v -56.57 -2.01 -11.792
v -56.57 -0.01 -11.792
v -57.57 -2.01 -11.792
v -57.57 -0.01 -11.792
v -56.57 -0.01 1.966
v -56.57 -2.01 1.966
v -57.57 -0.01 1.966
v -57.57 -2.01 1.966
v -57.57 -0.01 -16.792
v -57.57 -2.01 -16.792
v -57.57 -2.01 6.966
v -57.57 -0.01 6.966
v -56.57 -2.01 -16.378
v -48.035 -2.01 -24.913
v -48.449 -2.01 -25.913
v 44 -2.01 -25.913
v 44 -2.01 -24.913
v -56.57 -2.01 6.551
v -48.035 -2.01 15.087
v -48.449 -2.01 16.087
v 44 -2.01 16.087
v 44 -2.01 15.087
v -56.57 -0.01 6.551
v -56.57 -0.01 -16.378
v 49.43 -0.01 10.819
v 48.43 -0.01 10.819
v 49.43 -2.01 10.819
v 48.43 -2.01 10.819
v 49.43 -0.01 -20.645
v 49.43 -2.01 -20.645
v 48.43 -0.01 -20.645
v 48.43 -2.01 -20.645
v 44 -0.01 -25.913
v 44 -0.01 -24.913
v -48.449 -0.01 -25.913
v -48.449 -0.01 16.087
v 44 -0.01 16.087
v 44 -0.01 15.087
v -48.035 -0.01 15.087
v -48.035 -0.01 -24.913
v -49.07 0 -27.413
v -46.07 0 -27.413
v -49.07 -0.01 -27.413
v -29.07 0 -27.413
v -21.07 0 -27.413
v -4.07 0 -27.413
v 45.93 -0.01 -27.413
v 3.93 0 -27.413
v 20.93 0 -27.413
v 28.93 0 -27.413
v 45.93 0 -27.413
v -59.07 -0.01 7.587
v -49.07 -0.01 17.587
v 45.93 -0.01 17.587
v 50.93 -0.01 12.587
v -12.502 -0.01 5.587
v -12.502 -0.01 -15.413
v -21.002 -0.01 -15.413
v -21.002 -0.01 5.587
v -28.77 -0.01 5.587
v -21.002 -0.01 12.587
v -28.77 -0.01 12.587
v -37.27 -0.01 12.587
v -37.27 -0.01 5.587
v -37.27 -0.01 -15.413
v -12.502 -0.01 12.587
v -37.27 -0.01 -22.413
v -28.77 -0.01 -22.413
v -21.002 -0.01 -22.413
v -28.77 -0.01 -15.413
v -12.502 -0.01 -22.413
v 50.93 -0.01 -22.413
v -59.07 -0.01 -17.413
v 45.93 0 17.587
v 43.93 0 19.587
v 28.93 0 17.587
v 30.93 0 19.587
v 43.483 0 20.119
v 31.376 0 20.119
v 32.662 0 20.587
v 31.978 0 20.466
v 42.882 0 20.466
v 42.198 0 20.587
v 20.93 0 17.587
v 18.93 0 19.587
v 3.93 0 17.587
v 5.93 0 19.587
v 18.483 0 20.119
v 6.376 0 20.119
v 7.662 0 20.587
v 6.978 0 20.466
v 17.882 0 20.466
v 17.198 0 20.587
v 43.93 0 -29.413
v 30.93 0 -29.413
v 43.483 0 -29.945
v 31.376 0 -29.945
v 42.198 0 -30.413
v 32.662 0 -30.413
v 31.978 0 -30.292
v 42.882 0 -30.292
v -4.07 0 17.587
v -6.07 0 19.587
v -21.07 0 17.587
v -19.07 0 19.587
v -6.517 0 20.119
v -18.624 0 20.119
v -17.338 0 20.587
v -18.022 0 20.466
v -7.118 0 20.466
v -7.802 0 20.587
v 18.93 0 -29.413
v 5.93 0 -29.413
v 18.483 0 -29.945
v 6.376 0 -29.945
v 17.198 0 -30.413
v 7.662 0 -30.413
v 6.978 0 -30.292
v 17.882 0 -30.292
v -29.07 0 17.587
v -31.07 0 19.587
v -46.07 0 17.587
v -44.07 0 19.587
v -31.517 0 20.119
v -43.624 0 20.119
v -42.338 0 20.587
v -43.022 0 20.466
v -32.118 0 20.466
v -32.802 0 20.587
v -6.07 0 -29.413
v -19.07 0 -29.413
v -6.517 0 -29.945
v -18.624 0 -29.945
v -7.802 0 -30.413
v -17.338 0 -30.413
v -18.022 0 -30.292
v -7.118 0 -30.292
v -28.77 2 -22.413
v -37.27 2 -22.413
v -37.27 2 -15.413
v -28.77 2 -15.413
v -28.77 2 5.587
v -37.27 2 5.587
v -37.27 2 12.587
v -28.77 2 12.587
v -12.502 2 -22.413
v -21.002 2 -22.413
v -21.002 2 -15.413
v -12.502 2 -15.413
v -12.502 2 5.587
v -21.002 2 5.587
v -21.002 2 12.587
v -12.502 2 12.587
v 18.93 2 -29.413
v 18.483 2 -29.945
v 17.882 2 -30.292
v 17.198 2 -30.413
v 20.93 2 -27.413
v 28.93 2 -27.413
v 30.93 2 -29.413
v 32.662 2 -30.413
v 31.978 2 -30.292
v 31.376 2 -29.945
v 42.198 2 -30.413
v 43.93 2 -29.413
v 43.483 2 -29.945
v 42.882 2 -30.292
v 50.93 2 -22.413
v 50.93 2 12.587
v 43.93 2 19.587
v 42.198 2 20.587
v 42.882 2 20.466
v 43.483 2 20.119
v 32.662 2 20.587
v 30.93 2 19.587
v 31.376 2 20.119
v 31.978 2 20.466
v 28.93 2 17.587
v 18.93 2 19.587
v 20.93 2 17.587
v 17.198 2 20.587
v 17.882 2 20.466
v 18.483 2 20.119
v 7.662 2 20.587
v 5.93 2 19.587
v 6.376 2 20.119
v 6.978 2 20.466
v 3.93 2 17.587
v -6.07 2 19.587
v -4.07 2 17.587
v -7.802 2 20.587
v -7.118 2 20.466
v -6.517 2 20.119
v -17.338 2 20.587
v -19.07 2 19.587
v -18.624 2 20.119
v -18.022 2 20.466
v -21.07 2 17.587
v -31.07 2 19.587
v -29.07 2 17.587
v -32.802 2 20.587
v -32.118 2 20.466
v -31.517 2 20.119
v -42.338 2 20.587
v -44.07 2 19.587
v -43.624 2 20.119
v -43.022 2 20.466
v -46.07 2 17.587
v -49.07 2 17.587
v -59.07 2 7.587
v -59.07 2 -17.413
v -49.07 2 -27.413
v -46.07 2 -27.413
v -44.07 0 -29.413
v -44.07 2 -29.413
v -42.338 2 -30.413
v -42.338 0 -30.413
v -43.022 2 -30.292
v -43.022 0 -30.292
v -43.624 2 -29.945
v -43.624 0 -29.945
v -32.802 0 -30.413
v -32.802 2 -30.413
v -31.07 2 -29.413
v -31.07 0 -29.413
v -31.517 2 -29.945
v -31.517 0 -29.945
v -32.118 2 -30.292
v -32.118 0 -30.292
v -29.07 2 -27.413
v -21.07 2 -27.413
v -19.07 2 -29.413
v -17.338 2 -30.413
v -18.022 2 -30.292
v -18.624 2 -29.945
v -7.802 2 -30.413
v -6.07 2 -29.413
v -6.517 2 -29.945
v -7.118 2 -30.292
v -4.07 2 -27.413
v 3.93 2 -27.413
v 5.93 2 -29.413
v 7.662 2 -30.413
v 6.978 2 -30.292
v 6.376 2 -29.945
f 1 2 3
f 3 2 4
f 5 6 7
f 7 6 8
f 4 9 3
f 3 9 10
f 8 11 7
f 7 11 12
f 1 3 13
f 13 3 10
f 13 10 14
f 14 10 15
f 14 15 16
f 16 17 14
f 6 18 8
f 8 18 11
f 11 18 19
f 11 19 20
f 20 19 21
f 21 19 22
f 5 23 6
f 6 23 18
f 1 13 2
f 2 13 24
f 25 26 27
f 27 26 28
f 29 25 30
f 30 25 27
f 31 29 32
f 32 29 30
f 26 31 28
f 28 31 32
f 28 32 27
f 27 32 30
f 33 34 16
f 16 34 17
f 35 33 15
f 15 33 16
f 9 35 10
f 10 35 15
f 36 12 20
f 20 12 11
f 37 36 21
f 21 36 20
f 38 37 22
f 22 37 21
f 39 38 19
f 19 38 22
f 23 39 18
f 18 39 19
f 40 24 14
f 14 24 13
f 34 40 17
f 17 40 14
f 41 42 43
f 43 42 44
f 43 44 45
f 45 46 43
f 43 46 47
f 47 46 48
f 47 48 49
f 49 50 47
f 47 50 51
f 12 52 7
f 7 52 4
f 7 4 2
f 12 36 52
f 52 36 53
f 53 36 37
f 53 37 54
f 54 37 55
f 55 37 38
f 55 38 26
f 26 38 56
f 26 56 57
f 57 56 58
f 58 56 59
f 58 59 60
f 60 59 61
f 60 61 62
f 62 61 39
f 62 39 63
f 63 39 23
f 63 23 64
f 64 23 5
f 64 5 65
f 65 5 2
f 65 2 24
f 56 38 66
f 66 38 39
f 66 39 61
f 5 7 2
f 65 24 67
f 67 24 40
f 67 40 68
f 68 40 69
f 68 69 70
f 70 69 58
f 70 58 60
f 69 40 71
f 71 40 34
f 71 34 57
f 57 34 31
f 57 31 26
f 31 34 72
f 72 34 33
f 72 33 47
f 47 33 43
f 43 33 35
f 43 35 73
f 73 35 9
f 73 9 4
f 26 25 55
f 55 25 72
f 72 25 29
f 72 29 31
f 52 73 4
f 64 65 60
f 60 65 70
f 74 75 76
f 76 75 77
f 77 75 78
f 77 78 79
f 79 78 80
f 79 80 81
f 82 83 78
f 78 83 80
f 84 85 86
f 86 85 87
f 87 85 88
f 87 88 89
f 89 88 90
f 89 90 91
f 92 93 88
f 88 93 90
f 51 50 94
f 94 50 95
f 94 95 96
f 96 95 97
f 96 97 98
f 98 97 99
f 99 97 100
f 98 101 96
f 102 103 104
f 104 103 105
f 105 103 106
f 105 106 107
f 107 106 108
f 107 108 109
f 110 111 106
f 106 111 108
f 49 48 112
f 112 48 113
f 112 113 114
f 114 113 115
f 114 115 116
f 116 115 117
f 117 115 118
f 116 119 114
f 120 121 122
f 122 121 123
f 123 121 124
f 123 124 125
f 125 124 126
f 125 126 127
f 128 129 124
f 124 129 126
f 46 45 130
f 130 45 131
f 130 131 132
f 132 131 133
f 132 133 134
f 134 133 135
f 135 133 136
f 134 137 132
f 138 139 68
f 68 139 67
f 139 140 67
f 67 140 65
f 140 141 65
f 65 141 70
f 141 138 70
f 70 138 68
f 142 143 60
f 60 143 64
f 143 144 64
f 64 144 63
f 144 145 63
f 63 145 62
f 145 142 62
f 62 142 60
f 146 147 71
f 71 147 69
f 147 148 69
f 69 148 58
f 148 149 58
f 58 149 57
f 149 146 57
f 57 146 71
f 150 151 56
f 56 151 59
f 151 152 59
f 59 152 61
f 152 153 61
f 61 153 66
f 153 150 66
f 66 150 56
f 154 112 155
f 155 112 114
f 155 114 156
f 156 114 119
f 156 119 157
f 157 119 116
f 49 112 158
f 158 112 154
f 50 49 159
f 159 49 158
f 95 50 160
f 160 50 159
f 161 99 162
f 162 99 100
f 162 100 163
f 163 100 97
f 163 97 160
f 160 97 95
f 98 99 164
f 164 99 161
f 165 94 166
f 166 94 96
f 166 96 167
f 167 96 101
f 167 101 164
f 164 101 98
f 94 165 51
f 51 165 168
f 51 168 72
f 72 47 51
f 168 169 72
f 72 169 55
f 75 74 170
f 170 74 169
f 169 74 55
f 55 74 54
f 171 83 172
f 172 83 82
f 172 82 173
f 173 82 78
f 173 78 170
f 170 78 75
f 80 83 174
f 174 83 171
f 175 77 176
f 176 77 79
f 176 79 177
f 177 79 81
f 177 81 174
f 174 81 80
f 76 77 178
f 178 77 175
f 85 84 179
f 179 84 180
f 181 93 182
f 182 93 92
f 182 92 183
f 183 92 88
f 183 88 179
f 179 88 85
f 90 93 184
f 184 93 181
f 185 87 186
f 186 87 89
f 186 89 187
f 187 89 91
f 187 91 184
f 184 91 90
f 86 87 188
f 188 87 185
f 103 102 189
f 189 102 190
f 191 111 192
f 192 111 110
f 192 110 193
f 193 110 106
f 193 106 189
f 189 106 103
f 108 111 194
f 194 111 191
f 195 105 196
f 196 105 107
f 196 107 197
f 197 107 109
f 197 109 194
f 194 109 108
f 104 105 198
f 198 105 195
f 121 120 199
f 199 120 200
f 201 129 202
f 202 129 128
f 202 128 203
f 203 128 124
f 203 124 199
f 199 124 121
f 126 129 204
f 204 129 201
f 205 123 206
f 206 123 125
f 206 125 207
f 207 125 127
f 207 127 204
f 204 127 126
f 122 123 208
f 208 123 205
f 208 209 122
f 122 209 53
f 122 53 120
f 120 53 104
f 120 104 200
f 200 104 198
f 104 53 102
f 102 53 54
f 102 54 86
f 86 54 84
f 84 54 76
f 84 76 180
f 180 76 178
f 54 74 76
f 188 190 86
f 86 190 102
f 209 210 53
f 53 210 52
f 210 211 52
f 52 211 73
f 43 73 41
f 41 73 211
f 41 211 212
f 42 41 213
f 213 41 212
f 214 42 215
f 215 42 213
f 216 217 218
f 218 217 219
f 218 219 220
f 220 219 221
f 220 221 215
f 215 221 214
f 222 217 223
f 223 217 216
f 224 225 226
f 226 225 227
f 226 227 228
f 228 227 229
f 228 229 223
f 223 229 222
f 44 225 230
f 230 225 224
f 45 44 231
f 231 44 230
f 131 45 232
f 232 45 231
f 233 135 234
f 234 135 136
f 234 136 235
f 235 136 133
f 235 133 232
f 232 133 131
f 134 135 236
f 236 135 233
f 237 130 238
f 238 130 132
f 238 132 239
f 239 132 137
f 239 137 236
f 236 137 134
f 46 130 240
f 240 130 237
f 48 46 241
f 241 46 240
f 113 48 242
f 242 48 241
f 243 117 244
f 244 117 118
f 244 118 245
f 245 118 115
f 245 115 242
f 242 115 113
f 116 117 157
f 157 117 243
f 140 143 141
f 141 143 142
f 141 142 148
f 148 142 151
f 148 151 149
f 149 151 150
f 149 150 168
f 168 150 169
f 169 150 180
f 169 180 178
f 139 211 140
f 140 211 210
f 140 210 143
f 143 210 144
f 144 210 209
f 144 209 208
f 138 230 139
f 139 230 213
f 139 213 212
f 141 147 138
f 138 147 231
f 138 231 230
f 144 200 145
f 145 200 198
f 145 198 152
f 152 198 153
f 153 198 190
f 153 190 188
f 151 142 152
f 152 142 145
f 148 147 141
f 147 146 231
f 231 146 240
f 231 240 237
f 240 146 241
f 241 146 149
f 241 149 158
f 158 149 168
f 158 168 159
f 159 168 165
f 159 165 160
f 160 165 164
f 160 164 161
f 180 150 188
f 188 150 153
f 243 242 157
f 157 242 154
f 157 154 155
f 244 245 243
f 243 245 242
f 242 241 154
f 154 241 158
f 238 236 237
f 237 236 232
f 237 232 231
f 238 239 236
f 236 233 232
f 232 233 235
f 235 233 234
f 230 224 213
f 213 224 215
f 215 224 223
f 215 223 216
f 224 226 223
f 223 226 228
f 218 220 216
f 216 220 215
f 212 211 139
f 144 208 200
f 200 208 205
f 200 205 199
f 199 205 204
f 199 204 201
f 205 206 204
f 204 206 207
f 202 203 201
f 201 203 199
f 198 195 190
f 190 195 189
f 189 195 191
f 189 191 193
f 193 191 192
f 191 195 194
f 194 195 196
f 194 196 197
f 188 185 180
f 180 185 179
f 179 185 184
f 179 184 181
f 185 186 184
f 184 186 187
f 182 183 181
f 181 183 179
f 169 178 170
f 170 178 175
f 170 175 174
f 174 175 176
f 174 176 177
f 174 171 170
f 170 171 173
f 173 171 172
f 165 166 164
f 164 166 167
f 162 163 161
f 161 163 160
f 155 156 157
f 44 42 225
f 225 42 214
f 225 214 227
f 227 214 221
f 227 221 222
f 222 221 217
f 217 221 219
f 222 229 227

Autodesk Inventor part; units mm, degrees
ref_plane "YZ Plane" through (0, 0, 0) normal (1, 0, 0) x (0, 1, 0)
ref_plane "XZ Plane" through (0, 0, 0) normal (0, 1, 0) x (-1, 0, 0)
ref_plane "XY Plane" through (0, 0, 0) normal (0, 0, 1) x (1, 0, 0)
sketch "Sketch1" plane through (0, 0, 0) normal (0, 1, 0) x (-1, 0, 0)
  arc A0 (-42.1977, 20.587) -> (-43.9298, 19.587) centre (-42.1977, 18.587) ccw
  line L0 (-45.9298, 17.587) -> (-43.9298, 19.587)
  line L1 (-50.9298, 12.587) -> (-45.9298, 17.587)
  line L2 (-50.9298, -22.413) -> (-50.9298, 12.587)
  line L3 (-43.9298, -29.413) -> (-50.9298, -22.413)
  arc A1 (-43.9298, -29.413) -> (-42.1977, -30.413) centre (-42.1977, -28.413) ccw
  line L4 (-32.6618, -30.413) -> (-42.1977, -30.413)
  arc A2 (-32.6618, -30.413) -> (-30.9298, -29.413) centre (-32.6618, -28.413) ccw
  line L5 (-28.9298, -27.413) -> (-30.9298, -29.413)
  line L6 (-20.9298, -27.413) -> (-28.9298, -27.413)
  line L7 (-18.9298, -29.413) -> (-20.9298, -27.413)
  arc A3 (-18.9298, -29.413) -> (-17.1977, -30.413) centre (-17.1977, -28.413) ccw
  line L8 (-7.6618, -30.413) -> (-17.1977, -30.413)
  arc A4 (-7.6618, -30.413) -> (-5.9298, -29.413) centre (-7.6618, -28.413) ccw
  line L9 (-3.9298, -27.413) -> (-5.9298, -29.413)
  line L10 (4.0702, -27.413) -> (-3.9298, -27.413)
  line L11 (6.0702, -29.413) -> (4.0702, -27.413)
  arc A5 (6.0702, -29.413) -> (7.8023, -30.413) centre (7.8023, -28.413) ccw
  line L12 (17.3382, -30.413) -> (7.8023, -30.413)
  arc A6 (17.3382, -30.413) -> (19.0702, -29.413) centre (17.3382, -28.413) ccw
  line L13 (21.0702, -27.413) -> (19.0702, -29.413)
  line L14 (29.0702, -27.413) -> (21.0702, -27.413)
  line L15 (31.0702, -29.413) -> (29.0702, -27.413)
  arc A7 (31.0702, -29.413) -> (32.8023, -30.413) centre (32.8023, -28.413) ccw
  line L16 (42.3382, -30.413) -> (32.8023, -30.413)
  arc A8 (42.3382, -30.413) -> (44.0702, -29.413) centre (42.3382, -28.413) ccw
  line L17 (46.0702, -27.413) -> (44.0702, -29.413)
  line L18 (49.0702, -27.413) -> (46.0702, -27.413)
  line L19 (59.0702, -17.413) -> (49.0702, -27.413)
  line L20 (59.0702, 7.587) -> (59.0702, -17.413)
  line L21 (49.0702, 17.587) -> (59.0702, 7.587)
  line L22 (46.0702, 17.587) -> (49.0702, 17.587)
  line L23 (44.0702, 19.587) -> (46.0702, 17.587)
  arc A9 (44.0702, 19.587) -> (42.3382, 20.587) centre (42.3382, 18.587) ccw
  line L24 (32.8023, 20.587) -> (42.3382, 20.587)
  arc A10 (32.8023, 20.587) -> (31.0702, 19.587) centre (32.8023, 18.587) ccw
  line L25 (29.0702, 17.587) -> (31.0702, 19.587)
  line L26 (21.0702, 17.587) -> (29.0702, 17.587)
  line L27 (19.0702, 19.587) -> (21.0702, 17.587)
  arc A11 (19.0702, 19.587) -> (17.3382, 20.587) centre (17.3382, 18.587) ccw
  line L28 (7.8023, 20.587) -> (17.3382, 20.587)
  arc A12 (7.8023, 20.587) -> (6.0702, 19.587) centre (7.8023, 18.587) ccw
  line L29 (4.0702, 17.587) -> (6.0702, 19.587)
  line L30 (-3.9298, 17.587) -> (4.0702, 17.587)
  line L31 (-5.9298, 19.587) -> (-3.9298, 17.587)
  arc A13 (-5.9298, 19.587) -> (-7.6618, 20.587) centre (-7.6618, 18.587) ccw
  line L32 (-17.1977, 20.587) -> (-7.6618, 20.587)
  arc A14 (-17.1977, 20.587) -> (-18.9298, 19.587) centre (-17.1977, 18.587) ccw
  line L33 (-20.9298, 17.587) -> (-18.9298, 19.587)
  line L34 (-28.9298, 17.587) -> (-20.9298, 17.587)
  line L35 (-30.9298, 19.587) -> (-28.9298, 17.587)
  arc A15 (-30.9298, 19.587) -> (-32.6618, 20.587) centre (-32.6618, 18.587) ccw
  line L36 (-42.1977, 20.587) -> (-32.6618, 20.587)
  point P0 (0, 0)
  point P1 (59.0702, 17.587)
extrude "Extrusion1" add sketch "Sketch1" along normal blind 2
sketch "Sketch2" plane through (0, 2, 0) normal (0, 1, 0) x (1, 0, 0)
  line L0 (-21.0702, 27.413) -> (-29.0702, 27.413) projected
  line L1 (-28.7702, 22.413) -> (-28.7702, 15.413)
  line L2 (-21.0023, 22.413) -> (-21.0023, 15.413)
  line L3 (-28.7702, -5.587) -> (-28.7702, -12.587)
  line L4 (-21.0023, -5.587) -> (-21.0023, -12.587)
  line L5 (-37.2702, -5.587) -> (-28.7702, -5.587)
  line L6 (-21.0023, -5.587) -> (-12.5023, -5.587)
  line L7 (-12.5023, 15.413) -> (-21.0023, 15.413)
  line L8 (-28.7702, 15.413) -> (-37.2702, 15.413)
  line L9 (-37.2702, 22.413) -> (-28.7702, 22.413)
  line L10 (-21.0023, 22.413) -> (-12.5023, 22.413)
  line L11 (-12.5023, -12.587) -> (-21.0023, -12.587)
  line L12 (-28.7702, -12.587) -> (-37.2702, -12.587)
  line L13 (-37.2702, -12.587) -> (-37.2702, -5.587)
  line L14 (-37.2702, 15.413) -> (-37.2702, 22.413)
  line L15 (-12.5023, 22.413) -> (-12.5023, 15.413)
  line L16 (-12.5023, -5.587) -> (-12.5023, -12.587)
  line L17 (-29.0702, -17.587) -> (-21.0702, -17.587) projected
  line L18 (-49.0702, -17.587) -> (-46.0702, -17.587) projected
  arc A0 (42.1977, -20.587) -> (43.9298, -19.587) centre (42.1977, -18.587) ccw projected
  point P0 (0, 0)
  point P1 (-47.5702, -17.587)
  point P2 (43.1977, -20.319)
  dimension "d15" = 8.5
  dimension "d16" = 8.5
  dimension "d19" = 10.3
  dimension "d22" = 55.7
  dimension "d23" = 5
  dimension "d24" = 5
  dimension "d25" = 5
  dimension "d26" = 5
  dimension "d27" = 7
extrude "Extrusion4" cut sketch "Sketch2" against normal blind 10
sketch "Sketch4" plane through (0, 0, 0) normal (0, -1, 0) x (1, 0, 0)
  line L0 (-49.0702, 17.587) -> (-46.0702, 17.587) projected
  line L1 (28.9298, 17.587) -> (30.9298, 19.587) projected
  line L2 (-46.0702, 17.587) -> (45.9298, 17.587)
  line L3 (43.9298, 19.587) -> (50.9298, 12.587) projected
  line L4 (-44.0702, -29.413) -> (-46.0702, -27.413) projected
  line L5 (-46.0702, -27.413) -> (45.9298, -27.413)
  line L6 (50.9298, -22.413) -> (43.9298, -29.413) projected
  line L7 (-46.0702, 17.587) -> (-49.0702, 17.587)
  line L8 (-59.0702, 7.587) -> (-49.0702, 17.587) projected
  line L9 (-49.0702, 17.587) -> (-59.0702, 7.587)
  line L10 (-59.0702, -17.413) -> (-59.0702, 7.587) projected
  line L11 (-59.0702, 7.587) -> (-59.0702, -17.413)
  line L12 (-59.0702, -17.413) -> (-49.0702, -27.413)
  line L13 (-49.0702, -27.413) -> (-46.0702, -27.413)
  line L14 (45.9298, 17.587) -> (50.9298, 12.587)
  line L15 (50.9298, 12.587) -> (50.9298, -22.413) projected
  line L16 (50.9298, -22.413) -> (45.9298, -27.413)
  line L17 (50.9298, 12.587) -> (50.9298, -22.413)
  line L18 (-37.2702, -15.413) -> (-28.7702, -15.413) projected
  line L19 (-28.7702, -15.413) -> (-28.7702, -22.413) projected
  line L20 (-28.7702, -22.413) -> (-37.2702, -22.413) projected
  line L21 (-37.2702, -22.413) -> (-37.2702, -15.413) projected
  line L22 (-37.2702, 12.587) -> (-28.7702, 12.587) projected
  line L23 (-28.7702, 12.587) -> (-28.7702, 5.587) projected
  line L24 (-28.7702, 5.587) -> (-37.2702, 5.587) projected
  line L25 (-37.2702, 5.587) -> (-37.2702, 12.587) projected
  line L26 (-21.0023, -15.413) -> (-12.5023, -15.413) projected
  line L27 (-12.5023, -15.413) -> (-12.5023, -22.413) projected
  line L28 (-12.5023, -22.413) -> (-21.0023, -22.413) projected
  line L29 (-21.0023, -22.413) -> (-21.0023, -15.413) projected
  line L30 (-21.0023, 12.587) -> (-12.5023, 12.587) projected
  line L31 (-12.5023, 12.587) -> (-12.5023, 5.587) projected
  line L32 (-12.5023, 5.587) -> (-21.0023, 5.587) projected
  line L33 (-21.0023, 5.587) -> (-21.0023, 12.587) projected
  line L34 (17.1977, -30.413) -> (7.6618, -30.413) projected
  arc A0 (17.1977, -30.413) -> (18.9298, -29.413) centre (17.1977, -28.413) ccw projected
  line L35 (20.9298, -27.413) -> (18.9298, -29.413) projected
  line L36 (28.9298, -27.413) -> (20.9298, -27.413) projected
  line L37 (30.9298, -29.413) -> (28.9298, -27.413) projected
  arc A1 (30.9298, -29.413) -> (32.6618, -30.413) centre (32.6618, -28.413) ccw projected
  line L38 (42.1977, -30.413) -> (32.6618, -30.413) projected
  arc A2 (42.1977, -30.413) -> (43.9298, -29.413) centre (42.1977, -28.413) ccw projected
  line L39 (50.9298, -22.413) -> (43.9298, -29.413) projected
  line L40 (50.9298, 12.587) -> (50.9298, -22.413) projected
  line L41 (43.9298, 19.587) -> (50.9298, 12.587) projected
  arc A3 (43.9298, 19.587) -> (42.1977, 20.587) centre (42.1977, 18.587) ccw projected
  line L42 (32.6618, 20.587) -> (42.1977, 20.587) projected
  arc A4 (32.6618, 20.587) -> (30.9298, 19.587) centre (32.6618, 18.587) ccw projected
  line L43 (28.9298, 17.587) -> (30.9298, 19.587) projected
  line L44 (20.9298, 17.587) -> (28.9298, 17.587) projected
  line L45 (18.9298, 19.587) -> (20.9298, 17.587) projected
  arc A5 (18.9298, 19.587) -> (17.1977, 20.587) centre (17.1977, 18.587) ccw projected
  line L46 (7.6618, 20.587) -> (17.1977, 20.587) projected
  arc A6 (7.6618, 20.587) -> (5.9298, 19.587) centre (7.6618, 18.587) ccw projected
  line L47 (3.9298, 17.587) -> (5.9298, 19.587) projected
  line L48 (-4.0702, 17.587) -> (3.9298, 17.587) projected
  line L49 (-6.0702, 19.587) -> (-4.0702, 17.587) projected
  arc A7 (-6.0702, 19.587) -> (-7.8023, 20.587) centre (-7.8023, 18.587) ccw projected
  line L50 (-17.3382, 20.587) -> (-7.8023, 20.587) projected
  arc A8 (-17.3382, 20.587) -> (-19.0702, 19.587) centre (-17.3382, 18.587) ccw projected
  line L51 (-21.0702, 17.587) -> (-19.0702, 19.587) projected
  line L52 (-29.0702, 17.587) -> (-21.0702, 17.587) projected
  line L53 (-31.0702, 19.587) -> (-29.0702, 17.587) projected
  arc A9 (-31.0702, 19.587) -> (-32.8023, 20.587) centre (-32.8023, 18.587) ccw projected
  line L54 (-42.3382, 20.587) -> (-32.8023, 20.587) projected
  arc A10 (-42.3382, 20.587) -> (-44.0702, 19.587) centre (-42.3382, 18.587) ccw projected
  line L55 (-46.0702, 17.587) -> (-44.0702, 19.587) projected
  line L56 (-49.0702, 17.587) -> (-46.0702, 17.587) projected
  line L57 (-59.0702, 7.587) -> (-49.0702, 17.587) projected
  line L58 (-59.0702, -17.413) -> (-59.0702, 7.587) projected
  line L59 (-49.0702, -27.413) -> (-59.0702, -17.413) projected
  line L60 (-46.0702, -27.413) -> (-49.0702, -27.413) projected
  line L61 (-44.0702, -29.413) -> (-46.0702, -27.413) projected
  arc A11 (-44.0702, -29.413) -> (-42.3382, -30.413) centre (-42.3382, -28.413) ccw projected
  line L62 (-32.8023, -30.413) -> (-42.3382, -30.413) projected
  arc A12 (-32.8023, -30.413) -> (-31.0702, -29.413) centre (-32.8023, -28.413) ccw projected
  line L63 (-29.0702, -27.413) -> (-31.0702, -29.413) projected
  line L64 (-21.0702, -27.413) -> (-29.0702, -27.413) projected
  line L65 (-19.0702, -29.413) -> (-21.0702, -27.413) projected
  arc A13 (-19.0702, -29.413) -> (-17.3382, -30.413) centre (-17.3382, -28.413) ccw projected
  line L66 (-7.8023, -30.413) -> (-17.3382, -30.413) projected
  arc A14 (-7.8023, -30.413) -> (-6.0702, -29.413) centre (-7.8023, -28.413) ccw projected
  line L67 (-4.0702, -27.413) -> (-6.0702, -29.413) projected
  line L68 (3.9298, -27.413) -> (-4.0702, -27.413) projected
  line L69 (5.9298, -29.413) -> (3.9298, -27.413) projected
  arc A15 (5.9298, -29.413) -> (7.6618, -30.413) centre (7.6618, -28.413) ccw projected
  point P0 (0, 0)
extrude "Extrusion6" add sketch "Sketch4" along normal blind 0.01 contours L0 L2 L3 L15 L6 L5 L13 L12 L10 L8
sketch "Sketch5" plane through (0, -0.01, 0) normal (0, -1, 0) x (1, 0, 0)
  line L0 (50.9298, 12.587) -> (45.9298, 17.587) projected
  line L1 (45.9298, 17.587) -> (-49.0702, 17.587) projected
  line L2 (-49.0702, 17.587) -> (-59.0702, 7.587) projected
  line L3 (-59.0702, 7.587) -> (-59.0702, -17.413) projected
  line L4 (-59.0702, -17.413) -> (-49.0702, -27.413) projected
  line L5 (-49.0702, -27.413) -> (45.9298, -27.413) projected
  line L6 (45.9298, -27.413) -> (50.9298, -22.413) projected
  line L7 (50.9298, -22.413) -> (50.9298, 12.587) projected
  line L8 (-37.2702, -15.413) -> (-28.7702, -15.413) projected
  line L9 (-28.7702, -15.413) -> (-28.7702, -22.413) projected
  line L10 (-28.7702, -22.413) -> (-37.2702, -22.413) projected
  line L11 (-37.2702, -22.413) -> (-37.2702, -15.413) projected
  line L12 (-37.2702, 12.587) -> (-28.7702, 12.587) projected
  line L13 (-28.7702, 12.587) -> (-28.7702, 5.587) projected
  line L14 (-28.7702, 5.587) -> (-37.2702, 5.587) projected
  line L15 (-37.2702, 5.587) -> (-37.2702, 12.587) projected
  line L16 (-21.0023, -15.413) -> (-12.5023, -15.413) projected
  line L17 (-12.5023, -15.413) -> (-12.5023, -22.413) projected
  line L18 (-12.5023, -22.413) -> (-21.0023, -22.413) projected
  line L19 (-21.0023, -22.413) -> (-21.0023, -15.413) projected
  line L20 (-21.0023, 12.587) -> (-12.5023, 12.587) projected
  line L21 (-12.5023, 12.587) -> (-12.5023, 5.587) projected
  line L22 (-12.5023, 5.587) -> (-21.0023, 5.587) projected
  line L23 (-21.0023, 5.587) -> (-21.0023, 12.587) projected
  line L24 (44, -24.913) -> (-48.0347, -24.913)
  line L25 (-48.0347, -24.913) -> (-56.5702, -16.3775)
  line L26 (-56.5702, -16.3775) -> (-56.5702, 6.5514)
  line L27 (-56.5702, 6.5514) -> (-48.0347, 15.087)
  line L28 (-48.0347, 15.087) -> (44, 15.087)
  line L29 (48.4298, 10.8192) -> (48.4298, -20.6453)
  line L30 (-57.5702, -16.7917) -> (-57.5702, 6.9656)
  line L31 (-57.5702, 6.9656) -> (-48.4489, 16.087)
  line L32 (-48.4489, 16.087) -> (44, 16.087)
  line L33 (49.4298, 10.8192) -> (49.4298, -20.6453)
  line L34 (44, -25.913) -> (-48.4489, -25.913)
  line L35 (-48.4489, -25.913) -> (-57.5702, -16.7917)
  line L36 (44, 15.087) -> (44, 16.087)
  line L37 (44, -24.913) -> (44, -25.913)
  line L38 (49.4298, -20.6453) -> (48.4298, -20.6453)
  line L39 (49.4298, 10.8192) -> (48.4298, 10.8192)
  point P0 (0, 0)
  dimension "d34" = 2.5
  dimension "d35" = 1.5
extrude "Extrusion7" add sketch "Sketch5" along normal blind 2 contours L37 L34 L35 L30 L31 L32 L36 L28 L27 L26 L25 L24 | L39 L33 L38 L29
sketch "Sketch6" plane through (-57.5702, -0.01, -16.7917) normal (-1, 0, 0) x (0, 0, 1)
  line L0 (27.6109, -2) -> (-3.8536, -2) projected
  line L1 (5, 0) -> (18.7574, 0)
  line L2 (18.7574, 0) -> (18.7574, -2)
  line L3 (18.7574, -2) -> (5, -2)
  line L4 (5, -2) -> (5, 0)
  line L5 (0, 0) -> (0, -2) projected
  line L6 (23.7574, 0) -> (23.7574, -2) projected
  point P0 (16.7917, 0.01)
  point P1 (28.3431, -2)
  point P2 (-4.5858, -2)
  dimension "d38" = 5
  dimension "d39" = 5
extrude "Extrusion8" cut sketch "Sketch6" against normal blind 2
properties part number "RC5 Controller kryt"
